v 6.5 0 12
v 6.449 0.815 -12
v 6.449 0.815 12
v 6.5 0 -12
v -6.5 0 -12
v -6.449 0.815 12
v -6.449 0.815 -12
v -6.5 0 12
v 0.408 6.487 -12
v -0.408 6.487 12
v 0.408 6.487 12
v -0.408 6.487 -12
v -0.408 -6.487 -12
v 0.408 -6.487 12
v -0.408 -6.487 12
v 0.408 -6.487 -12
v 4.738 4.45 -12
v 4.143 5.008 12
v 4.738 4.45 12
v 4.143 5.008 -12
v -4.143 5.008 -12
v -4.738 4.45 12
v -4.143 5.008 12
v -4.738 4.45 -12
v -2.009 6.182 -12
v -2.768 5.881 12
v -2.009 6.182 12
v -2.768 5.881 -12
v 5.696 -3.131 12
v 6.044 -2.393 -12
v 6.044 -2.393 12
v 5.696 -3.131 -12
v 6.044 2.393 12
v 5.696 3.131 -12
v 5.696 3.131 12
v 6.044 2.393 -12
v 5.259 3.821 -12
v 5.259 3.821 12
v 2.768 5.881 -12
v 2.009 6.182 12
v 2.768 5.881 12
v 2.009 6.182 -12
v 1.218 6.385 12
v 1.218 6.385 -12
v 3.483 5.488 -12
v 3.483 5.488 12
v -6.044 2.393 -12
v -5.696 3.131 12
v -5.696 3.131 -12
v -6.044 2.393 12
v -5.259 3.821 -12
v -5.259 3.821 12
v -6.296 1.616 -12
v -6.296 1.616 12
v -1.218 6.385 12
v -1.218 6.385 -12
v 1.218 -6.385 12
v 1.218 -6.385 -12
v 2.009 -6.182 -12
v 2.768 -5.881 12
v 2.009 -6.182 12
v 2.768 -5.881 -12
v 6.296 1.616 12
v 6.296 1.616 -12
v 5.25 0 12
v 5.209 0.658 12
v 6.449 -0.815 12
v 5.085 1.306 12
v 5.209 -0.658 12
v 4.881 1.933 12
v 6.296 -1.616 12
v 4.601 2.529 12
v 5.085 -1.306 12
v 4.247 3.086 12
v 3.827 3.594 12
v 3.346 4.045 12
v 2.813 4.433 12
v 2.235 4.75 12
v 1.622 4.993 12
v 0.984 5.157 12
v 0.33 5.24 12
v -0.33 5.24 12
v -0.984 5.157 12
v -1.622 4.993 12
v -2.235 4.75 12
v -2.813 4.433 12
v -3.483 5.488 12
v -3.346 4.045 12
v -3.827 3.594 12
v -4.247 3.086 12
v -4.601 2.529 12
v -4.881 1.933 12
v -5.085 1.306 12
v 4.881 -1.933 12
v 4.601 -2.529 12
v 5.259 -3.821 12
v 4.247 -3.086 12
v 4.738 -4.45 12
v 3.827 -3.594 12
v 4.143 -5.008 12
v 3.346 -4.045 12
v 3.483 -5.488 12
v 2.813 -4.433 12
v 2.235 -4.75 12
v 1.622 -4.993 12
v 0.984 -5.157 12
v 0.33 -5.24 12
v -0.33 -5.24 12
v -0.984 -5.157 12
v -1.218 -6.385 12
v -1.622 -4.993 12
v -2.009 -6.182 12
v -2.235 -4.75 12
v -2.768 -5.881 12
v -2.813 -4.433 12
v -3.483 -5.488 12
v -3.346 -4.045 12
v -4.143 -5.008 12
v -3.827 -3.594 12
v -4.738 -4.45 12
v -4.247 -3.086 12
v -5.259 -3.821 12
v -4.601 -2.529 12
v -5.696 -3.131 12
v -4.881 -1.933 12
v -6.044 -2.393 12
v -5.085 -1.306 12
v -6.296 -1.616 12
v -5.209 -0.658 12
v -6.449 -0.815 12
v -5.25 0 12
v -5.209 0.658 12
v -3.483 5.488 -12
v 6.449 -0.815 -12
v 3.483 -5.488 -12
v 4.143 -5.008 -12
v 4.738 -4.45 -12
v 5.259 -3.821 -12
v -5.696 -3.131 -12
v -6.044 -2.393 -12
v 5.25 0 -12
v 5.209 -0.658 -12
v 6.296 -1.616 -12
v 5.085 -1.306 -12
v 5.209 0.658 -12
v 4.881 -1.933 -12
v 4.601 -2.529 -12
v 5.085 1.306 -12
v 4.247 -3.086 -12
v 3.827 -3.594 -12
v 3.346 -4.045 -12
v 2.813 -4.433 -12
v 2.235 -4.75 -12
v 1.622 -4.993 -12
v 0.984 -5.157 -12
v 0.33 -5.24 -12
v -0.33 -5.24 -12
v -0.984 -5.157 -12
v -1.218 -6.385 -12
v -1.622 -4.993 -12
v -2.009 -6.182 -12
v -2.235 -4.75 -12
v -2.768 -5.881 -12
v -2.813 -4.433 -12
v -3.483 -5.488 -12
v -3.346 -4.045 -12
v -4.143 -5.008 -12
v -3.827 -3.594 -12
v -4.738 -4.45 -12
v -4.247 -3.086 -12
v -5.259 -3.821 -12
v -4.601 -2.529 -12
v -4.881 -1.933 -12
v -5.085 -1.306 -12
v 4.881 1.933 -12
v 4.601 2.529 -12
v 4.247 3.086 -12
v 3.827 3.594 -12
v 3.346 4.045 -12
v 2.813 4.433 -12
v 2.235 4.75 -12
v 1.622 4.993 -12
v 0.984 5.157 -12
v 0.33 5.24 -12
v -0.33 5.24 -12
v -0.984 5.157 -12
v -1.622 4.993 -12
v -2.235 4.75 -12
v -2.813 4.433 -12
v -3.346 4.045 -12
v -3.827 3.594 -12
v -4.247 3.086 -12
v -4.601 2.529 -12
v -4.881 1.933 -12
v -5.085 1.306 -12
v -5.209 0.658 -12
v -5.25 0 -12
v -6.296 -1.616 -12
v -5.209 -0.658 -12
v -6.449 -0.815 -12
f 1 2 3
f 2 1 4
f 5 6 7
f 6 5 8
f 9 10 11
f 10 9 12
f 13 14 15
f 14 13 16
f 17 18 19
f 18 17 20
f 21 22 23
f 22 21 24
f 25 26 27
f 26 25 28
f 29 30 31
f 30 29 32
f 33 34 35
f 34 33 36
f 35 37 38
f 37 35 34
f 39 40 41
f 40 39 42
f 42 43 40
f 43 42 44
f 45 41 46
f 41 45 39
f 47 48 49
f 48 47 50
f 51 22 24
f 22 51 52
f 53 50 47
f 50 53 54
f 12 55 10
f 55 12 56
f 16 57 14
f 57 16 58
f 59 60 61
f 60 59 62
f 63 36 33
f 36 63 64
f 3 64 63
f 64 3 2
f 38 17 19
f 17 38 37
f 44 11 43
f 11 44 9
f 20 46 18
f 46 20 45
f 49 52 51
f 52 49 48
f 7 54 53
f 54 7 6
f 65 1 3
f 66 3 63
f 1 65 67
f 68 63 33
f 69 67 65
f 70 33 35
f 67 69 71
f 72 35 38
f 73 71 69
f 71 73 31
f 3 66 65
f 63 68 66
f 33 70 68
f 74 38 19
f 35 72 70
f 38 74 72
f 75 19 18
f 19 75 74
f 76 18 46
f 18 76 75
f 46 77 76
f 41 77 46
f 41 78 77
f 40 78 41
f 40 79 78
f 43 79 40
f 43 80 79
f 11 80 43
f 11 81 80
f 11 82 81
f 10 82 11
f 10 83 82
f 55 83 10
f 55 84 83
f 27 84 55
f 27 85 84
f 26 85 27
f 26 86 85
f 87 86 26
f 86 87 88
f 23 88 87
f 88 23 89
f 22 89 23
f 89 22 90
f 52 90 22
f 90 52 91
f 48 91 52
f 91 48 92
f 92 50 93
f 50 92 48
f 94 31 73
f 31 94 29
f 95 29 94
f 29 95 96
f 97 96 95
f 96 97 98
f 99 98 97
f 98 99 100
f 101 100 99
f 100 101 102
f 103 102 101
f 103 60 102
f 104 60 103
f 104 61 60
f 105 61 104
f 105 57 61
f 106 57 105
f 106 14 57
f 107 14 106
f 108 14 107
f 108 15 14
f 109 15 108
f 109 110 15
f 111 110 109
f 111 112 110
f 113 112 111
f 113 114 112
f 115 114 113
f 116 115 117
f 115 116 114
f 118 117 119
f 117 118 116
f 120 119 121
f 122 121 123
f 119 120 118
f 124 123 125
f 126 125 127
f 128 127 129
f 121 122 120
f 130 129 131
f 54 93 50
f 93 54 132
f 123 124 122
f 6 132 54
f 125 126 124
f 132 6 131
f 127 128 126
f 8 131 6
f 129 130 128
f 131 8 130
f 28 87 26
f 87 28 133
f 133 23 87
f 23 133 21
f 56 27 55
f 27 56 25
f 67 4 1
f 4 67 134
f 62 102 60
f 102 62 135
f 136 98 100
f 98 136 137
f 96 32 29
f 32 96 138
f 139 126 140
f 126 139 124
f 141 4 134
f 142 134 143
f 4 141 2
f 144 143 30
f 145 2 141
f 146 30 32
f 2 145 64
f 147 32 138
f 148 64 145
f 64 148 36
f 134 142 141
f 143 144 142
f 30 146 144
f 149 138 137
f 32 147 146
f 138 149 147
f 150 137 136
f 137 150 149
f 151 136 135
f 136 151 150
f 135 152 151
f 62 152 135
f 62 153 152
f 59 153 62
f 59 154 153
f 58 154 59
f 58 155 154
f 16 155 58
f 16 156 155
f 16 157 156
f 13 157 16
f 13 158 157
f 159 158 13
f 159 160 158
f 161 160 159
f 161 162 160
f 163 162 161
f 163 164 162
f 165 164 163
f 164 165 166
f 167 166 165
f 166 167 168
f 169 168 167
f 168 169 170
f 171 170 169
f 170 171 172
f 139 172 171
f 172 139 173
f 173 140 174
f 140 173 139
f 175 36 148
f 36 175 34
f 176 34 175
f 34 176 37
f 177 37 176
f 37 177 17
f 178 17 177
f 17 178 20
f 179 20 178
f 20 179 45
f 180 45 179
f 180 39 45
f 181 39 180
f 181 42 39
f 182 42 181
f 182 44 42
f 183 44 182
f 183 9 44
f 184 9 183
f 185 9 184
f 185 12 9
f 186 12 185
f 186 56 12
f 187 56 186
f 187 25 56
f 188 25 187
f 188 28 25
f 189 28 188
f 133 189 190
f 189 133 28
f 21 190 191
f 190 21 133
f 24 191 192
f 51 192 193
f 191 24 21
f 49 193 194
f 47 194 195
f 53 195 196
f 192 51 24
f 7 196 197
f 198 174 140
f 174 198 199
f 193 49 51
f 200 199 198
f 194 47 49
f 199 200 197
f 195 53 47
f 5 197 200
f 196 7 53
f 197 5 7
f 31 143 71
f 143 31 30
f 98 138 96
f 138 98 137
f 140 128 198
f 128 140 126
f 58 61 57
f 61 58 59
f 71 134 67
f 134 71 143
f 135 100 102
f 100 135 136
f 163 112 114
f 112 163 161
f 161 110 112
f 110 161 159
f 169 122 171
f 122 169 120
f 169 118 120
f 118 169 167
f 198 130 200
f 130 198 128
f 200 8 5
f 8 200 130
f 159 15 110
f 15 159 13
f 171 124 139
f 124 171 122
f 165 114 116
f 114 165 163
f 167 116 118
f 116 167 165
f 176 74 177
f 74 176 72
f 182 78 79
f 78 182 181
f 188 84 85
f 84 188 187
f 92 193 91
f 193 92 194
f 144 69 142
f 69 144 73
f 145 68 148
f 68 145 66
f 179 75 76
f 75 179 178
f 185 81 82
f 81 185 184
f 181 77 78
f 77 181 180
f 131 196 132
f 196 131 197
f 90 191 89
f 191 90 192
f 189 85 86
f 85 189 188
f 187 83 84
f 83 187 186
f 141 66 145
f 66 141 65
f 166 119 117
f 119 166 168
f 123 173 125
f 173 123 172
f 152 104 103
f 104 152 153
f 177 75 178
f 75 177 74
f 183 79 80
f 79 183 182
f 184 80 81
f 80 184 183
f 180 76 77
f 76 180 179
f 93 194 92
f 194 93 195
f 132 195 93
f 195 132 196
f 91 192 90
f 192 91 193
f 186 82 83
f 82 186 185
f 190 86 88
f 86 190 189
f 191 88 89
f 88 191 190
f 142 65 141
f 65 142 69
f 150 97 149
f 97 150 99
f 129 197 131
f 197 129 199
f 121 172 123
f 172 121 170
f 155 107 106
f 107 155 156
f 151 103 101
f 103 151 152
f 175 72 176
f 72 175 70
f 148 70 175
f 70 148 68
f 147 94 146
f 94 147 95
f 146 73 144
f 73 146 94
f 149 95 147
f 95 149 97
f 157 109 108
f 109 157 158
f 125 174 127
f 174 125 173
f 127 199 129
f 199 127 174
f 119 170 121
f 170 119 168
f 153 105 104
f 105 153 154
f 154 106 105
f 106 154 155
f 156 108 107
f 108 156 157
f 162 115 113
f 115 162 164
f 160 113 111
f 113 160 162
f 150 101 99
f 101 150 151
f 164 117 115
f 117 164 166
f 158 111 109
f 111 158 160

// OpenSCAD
$fn = 50;


difference() {
	union() {
		translate(v = [0, 0, -12.0000000000]) {
			cylinder(h = 24, r = 6.5000000000);
		}
	}
	union() {
		translate(v = [0, 0, -100.0000000000]) {
			cylinder(h = 200, r = 5.2500000000);
		}
	}
}
